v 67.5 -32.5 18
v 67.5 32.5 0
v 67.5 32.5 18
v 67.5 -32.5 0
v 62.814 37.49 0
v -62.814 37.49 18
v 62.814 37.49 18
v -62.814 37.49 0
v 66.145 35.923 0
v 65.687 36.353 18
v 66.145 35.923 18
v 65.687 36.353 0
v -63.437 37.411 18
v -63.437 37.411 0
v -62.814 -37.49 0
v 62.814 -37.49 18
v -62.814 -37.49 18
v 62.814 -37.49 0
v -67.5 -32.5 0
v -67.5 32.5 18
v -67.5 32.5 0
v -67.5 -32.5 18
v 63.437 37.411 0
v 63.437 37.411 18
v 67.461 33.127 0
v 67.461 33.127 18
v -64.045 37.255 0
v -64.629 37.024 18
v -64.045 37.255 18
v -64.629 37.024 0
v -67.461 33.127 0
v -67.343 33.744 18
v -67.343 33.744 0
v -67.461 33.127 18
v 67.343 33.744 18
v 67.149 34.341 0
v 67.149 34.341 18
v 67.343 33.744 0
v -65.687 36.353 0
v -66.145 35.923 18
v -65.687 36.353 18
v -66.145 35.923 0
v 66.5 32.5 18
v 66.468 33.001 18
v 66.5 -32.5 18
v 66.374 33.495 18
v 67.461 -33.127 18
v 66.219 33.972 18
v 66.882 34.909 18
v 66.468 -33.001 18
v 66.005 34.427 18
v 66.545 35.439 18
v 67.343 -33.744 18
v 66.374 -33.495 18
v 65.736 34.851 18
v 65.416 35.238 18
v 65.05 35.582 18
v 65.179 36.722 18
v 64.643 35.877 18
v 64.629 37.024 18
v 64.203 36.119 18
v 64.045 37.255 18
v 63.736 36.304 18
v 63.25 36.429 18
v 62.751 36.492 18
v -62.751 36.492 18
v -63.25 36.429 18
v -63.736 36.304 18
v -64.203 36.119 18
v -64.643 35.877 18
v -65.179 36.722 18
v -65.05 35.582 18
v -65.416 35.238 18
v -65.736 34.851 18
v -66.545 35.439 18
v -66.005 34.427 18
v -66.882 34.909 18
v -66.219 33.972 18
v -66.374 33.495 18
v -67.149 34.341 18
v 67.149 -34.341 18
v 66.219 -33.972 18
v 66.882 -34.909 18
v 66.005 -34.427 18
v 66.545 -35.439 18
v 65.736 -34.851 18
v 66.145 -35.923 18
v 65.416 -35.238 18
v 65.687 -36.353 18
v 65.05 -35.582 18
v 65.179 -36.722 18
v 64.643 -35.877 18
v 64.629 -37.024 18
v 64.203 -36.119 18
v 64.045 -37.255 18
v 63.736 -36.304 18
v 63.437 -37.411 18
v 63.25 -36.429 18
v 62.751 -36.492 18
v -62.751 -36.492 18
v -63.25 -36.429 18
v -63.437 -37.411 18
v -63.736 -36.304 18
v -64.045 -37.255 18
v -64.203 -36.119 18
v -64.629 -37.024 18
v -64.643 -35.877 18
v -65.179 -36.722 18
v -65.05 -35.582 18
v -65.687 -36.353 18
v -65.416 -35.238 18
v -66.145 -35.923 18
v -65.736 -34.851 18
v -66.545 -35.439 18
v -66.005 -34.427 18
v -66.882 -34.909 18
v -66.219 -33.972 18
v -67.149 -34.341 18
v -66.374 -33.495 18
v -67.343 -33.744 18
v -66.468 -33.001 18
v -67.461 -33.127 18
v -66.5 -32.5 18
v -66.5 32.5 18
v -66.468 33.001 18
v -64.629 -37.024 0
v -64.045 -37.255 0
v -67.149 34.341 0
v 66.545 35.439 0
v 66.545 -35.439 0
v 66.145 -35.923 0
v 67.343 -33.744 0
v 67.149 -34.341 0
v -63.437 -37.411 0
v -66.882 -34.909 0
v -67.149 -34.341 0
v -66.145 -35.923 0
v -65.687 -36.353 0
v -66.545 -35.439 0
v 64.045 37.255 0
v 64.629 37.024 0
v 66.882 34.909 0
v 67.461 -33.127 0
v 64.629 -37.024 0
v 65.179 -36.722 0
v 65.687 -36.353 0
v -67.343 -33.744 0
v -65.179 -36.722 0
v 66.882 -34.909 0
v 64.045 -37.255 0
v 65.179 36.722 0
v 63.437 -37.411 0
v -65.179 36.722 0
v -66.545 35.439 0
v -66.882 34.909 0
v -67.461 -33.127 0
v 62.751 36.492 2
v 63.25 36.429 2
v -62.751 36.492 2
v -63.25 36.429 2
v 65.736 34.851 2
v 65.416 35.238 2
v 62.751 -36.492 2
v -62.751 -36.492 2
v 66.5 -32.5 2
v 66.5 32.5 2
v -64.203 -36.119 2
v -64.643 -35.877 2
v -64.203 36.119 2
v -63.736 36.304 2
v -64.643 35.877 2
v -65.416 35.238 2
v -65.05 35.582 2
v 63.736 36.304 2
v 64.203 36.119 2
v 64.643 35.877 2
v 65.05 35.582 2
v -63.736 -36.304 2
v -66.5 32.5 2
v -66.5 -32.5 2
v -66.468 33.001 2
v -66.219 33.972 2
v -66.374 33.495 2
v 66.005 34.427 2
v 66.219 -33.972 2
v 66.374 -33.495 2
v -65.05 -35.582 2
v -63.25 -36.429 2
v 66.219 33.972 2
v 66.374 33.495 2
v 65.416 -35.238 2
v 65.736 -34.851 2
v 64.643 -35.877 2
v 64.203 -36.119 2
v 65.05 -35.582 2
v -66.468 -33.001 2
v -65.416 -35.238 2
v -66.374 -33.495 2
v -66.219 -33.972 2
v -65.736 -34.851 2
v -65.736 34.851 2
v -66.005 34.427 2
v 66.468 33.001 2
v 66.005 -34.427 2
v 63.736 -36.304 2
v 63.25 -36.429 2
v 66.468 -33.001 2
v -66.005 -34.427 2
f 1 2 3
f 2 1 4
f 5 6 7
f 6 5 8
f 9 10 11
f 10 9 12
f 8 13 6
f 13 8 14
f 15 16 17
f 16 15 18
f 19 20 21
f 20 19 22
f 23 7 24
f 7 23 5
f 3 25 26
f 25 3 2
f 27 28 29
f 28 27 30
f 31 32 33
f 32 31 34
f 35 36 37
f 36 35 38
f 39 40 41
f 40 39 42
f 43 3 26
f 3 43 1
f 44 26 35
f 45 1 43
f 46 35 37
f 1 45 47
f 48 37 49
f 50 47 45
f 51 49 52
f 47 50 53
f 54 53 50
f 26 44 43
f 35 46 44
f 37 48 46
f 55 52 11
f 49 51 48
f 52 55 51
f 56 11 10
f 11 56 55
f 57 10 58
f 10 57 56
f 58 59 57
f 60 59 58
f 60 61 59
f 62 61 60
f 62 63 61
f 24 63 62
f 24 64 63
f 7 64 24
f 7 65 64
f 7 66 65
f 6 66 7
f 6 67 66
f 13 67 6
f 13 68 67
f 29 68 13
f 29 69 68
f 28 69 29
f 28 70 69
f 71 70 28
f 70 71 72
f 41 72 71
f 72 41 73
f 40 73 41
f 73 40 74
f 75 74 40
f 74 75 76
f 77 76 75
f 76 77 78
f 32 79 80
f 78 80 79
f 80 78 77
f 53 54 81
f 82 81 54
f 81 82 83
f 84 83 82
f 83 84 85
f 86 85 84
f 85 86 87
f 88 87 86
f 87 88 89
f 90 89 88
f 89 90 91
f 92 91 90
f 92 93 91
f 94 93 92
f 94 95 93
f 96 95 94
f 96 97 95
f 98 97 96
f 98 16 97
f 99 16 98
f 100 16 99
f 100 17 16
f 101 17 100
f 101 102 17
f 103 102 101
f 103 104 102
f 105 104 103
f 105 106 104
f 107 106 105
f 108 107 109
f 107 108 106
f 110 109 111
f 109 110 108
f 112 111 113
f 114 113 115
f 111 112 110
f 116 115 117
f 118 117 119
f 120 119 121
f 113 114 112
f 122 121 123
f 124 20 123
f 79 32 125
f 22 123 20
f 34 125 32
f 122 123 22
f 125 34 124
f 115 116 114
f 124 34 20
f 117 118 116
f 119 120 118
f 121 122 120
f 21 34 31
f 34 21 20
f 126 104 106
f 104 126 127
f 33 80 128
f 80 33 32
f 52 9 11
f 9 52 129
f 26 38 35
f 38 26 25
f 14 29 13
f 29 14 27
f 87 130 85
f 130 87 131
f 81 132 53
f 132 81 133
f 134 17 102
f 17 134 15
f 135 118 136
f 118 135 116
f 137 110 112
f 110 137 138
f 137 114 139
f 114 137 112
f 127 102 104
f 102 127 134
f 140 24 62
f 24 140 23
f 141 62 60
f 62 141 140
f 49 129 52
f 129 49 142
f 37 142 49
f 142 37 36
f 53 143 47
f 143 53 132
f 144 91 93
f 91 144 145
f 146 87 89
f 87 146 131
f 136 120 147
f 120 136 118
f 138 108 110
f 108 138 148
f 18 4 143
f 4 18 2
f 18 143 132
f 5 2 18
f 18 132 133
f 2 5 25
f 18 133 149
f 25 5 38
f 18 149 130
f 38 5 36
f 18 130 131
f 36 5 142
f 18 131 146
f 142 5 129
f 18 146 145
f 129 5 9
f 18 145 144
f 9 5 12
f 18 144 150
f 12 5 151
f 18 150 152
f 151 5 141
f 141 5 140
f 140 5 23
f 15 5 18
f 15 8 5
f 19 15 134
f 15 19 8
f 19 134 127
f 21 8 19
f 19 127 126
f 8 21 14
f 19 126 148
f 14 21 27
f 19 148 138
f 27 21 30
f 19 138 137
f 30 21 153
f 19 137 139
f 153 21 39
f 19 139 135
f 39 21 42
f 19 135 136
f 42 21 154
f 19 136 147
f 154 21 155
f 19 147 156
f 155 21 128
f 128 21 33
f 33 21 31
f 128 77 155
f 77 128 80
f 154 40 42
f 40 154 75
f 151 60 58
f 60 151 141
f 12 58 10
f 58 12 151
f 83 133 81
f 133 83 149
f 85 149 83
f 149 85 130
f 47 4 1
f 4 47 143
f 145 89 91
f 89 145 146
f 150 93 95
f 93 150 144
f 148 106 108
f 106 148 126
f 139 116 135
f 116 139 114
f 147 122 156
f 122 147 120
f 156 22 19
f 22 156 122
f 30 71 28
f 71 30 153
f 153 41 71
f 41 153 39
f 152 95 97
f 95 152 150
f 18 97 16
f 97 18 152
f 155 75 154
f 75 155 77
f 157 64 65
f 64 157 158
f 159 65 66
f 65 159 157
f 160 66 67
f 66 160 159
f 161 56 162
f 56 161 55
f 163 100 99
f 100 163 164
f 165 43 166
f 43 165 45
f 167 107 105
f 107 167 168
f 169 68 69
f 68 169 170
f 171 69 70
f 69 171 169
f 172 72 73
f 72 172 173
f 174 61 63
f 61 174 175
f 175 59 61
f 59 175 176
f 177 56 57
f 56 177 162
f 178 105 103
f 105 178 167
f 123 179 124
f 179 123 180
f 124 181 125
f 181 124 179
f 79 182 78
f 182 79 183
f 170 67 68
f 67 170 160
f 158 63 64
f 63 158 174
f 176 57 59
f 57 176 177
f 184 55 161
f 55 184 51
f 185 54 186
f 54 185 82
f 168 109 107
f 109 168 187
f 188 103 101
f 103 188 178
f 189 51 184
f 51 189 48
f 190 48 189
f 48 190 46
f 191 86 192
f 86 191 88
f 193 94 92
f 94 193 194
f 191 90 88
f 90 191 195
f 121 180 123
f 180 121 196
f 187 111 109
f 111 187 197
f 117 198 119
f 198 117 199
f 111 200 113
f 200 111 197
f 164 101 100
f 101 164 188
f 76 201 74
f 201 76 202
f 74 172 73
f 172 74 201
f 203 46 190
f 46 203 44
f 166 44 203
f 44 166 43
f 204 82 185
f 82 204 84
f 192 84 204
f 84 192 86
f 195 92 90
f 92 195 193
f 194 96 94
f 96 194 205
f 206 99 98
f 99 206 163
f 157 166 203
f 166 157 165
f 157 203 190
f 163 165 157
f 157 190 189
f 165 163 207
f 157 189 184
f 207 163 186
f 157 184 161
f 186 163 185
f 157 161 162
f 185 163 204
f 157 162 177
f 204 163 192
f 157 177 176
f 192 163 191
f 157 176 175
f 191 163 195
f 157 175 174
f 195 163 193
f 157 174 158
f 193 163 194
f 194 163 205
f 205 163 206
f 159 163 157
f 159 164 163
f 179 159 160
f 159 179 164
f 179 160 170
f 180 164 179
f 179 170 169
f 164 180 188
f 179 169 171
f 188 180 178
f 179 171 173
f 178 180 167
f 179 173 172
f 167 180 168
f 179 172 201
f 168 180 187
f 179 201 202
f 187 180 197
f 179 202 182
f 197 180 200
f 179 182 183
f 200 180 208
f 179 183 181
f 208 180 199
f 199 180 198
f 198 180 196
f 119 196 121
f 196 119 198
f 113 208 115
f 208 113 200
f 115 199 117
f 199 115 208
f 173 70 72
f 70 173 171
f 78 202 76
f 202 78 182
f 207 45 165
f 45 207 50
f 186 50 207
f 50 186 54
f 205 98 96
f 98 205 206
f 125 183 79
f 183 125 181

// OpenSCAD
$fn = 50;


difference() {
	union() {
		hull() {
			translate(v = [-62.5000000000, 32.5000000000, 0]) {
				cylinder(h = 18, r = 5);
			}
			translate(v = [62.5000000000, 32.5000000000, 0]) {
				cylinder(h = 18, r = 5);
			}
			translate(v = [-62.5000000000, -32.5000000000, 0]) {
				cylinder(h = 18, r = 5);
			}
			translate(v = [62.5000000000, -32.5000000000, 0]) {
				cylinder(h = 18, r = 5);
			}
		}
	}
	union() {
		translate(v = [0, 0, 2]) {
			hull() {
				translate(v = [-62.5000000000, 32.5000000000, 0]) {
					cylinder(h = 16, r = 4);
				}
				translate(v = [62.5000000000, 32.5000000000, 0]) {
					cylinder(h = 16, r = 4);
				}
				translate(v = [-62.5000000000, -32.5000000000, 0]) {
					cylinder(h = 16, r = 4);
				}
				translate(v = [62.5000000000, -32.5000000000, 0]) {
					cylinder(h = 16, r = 4);
				}
			}
		}
	}
}
